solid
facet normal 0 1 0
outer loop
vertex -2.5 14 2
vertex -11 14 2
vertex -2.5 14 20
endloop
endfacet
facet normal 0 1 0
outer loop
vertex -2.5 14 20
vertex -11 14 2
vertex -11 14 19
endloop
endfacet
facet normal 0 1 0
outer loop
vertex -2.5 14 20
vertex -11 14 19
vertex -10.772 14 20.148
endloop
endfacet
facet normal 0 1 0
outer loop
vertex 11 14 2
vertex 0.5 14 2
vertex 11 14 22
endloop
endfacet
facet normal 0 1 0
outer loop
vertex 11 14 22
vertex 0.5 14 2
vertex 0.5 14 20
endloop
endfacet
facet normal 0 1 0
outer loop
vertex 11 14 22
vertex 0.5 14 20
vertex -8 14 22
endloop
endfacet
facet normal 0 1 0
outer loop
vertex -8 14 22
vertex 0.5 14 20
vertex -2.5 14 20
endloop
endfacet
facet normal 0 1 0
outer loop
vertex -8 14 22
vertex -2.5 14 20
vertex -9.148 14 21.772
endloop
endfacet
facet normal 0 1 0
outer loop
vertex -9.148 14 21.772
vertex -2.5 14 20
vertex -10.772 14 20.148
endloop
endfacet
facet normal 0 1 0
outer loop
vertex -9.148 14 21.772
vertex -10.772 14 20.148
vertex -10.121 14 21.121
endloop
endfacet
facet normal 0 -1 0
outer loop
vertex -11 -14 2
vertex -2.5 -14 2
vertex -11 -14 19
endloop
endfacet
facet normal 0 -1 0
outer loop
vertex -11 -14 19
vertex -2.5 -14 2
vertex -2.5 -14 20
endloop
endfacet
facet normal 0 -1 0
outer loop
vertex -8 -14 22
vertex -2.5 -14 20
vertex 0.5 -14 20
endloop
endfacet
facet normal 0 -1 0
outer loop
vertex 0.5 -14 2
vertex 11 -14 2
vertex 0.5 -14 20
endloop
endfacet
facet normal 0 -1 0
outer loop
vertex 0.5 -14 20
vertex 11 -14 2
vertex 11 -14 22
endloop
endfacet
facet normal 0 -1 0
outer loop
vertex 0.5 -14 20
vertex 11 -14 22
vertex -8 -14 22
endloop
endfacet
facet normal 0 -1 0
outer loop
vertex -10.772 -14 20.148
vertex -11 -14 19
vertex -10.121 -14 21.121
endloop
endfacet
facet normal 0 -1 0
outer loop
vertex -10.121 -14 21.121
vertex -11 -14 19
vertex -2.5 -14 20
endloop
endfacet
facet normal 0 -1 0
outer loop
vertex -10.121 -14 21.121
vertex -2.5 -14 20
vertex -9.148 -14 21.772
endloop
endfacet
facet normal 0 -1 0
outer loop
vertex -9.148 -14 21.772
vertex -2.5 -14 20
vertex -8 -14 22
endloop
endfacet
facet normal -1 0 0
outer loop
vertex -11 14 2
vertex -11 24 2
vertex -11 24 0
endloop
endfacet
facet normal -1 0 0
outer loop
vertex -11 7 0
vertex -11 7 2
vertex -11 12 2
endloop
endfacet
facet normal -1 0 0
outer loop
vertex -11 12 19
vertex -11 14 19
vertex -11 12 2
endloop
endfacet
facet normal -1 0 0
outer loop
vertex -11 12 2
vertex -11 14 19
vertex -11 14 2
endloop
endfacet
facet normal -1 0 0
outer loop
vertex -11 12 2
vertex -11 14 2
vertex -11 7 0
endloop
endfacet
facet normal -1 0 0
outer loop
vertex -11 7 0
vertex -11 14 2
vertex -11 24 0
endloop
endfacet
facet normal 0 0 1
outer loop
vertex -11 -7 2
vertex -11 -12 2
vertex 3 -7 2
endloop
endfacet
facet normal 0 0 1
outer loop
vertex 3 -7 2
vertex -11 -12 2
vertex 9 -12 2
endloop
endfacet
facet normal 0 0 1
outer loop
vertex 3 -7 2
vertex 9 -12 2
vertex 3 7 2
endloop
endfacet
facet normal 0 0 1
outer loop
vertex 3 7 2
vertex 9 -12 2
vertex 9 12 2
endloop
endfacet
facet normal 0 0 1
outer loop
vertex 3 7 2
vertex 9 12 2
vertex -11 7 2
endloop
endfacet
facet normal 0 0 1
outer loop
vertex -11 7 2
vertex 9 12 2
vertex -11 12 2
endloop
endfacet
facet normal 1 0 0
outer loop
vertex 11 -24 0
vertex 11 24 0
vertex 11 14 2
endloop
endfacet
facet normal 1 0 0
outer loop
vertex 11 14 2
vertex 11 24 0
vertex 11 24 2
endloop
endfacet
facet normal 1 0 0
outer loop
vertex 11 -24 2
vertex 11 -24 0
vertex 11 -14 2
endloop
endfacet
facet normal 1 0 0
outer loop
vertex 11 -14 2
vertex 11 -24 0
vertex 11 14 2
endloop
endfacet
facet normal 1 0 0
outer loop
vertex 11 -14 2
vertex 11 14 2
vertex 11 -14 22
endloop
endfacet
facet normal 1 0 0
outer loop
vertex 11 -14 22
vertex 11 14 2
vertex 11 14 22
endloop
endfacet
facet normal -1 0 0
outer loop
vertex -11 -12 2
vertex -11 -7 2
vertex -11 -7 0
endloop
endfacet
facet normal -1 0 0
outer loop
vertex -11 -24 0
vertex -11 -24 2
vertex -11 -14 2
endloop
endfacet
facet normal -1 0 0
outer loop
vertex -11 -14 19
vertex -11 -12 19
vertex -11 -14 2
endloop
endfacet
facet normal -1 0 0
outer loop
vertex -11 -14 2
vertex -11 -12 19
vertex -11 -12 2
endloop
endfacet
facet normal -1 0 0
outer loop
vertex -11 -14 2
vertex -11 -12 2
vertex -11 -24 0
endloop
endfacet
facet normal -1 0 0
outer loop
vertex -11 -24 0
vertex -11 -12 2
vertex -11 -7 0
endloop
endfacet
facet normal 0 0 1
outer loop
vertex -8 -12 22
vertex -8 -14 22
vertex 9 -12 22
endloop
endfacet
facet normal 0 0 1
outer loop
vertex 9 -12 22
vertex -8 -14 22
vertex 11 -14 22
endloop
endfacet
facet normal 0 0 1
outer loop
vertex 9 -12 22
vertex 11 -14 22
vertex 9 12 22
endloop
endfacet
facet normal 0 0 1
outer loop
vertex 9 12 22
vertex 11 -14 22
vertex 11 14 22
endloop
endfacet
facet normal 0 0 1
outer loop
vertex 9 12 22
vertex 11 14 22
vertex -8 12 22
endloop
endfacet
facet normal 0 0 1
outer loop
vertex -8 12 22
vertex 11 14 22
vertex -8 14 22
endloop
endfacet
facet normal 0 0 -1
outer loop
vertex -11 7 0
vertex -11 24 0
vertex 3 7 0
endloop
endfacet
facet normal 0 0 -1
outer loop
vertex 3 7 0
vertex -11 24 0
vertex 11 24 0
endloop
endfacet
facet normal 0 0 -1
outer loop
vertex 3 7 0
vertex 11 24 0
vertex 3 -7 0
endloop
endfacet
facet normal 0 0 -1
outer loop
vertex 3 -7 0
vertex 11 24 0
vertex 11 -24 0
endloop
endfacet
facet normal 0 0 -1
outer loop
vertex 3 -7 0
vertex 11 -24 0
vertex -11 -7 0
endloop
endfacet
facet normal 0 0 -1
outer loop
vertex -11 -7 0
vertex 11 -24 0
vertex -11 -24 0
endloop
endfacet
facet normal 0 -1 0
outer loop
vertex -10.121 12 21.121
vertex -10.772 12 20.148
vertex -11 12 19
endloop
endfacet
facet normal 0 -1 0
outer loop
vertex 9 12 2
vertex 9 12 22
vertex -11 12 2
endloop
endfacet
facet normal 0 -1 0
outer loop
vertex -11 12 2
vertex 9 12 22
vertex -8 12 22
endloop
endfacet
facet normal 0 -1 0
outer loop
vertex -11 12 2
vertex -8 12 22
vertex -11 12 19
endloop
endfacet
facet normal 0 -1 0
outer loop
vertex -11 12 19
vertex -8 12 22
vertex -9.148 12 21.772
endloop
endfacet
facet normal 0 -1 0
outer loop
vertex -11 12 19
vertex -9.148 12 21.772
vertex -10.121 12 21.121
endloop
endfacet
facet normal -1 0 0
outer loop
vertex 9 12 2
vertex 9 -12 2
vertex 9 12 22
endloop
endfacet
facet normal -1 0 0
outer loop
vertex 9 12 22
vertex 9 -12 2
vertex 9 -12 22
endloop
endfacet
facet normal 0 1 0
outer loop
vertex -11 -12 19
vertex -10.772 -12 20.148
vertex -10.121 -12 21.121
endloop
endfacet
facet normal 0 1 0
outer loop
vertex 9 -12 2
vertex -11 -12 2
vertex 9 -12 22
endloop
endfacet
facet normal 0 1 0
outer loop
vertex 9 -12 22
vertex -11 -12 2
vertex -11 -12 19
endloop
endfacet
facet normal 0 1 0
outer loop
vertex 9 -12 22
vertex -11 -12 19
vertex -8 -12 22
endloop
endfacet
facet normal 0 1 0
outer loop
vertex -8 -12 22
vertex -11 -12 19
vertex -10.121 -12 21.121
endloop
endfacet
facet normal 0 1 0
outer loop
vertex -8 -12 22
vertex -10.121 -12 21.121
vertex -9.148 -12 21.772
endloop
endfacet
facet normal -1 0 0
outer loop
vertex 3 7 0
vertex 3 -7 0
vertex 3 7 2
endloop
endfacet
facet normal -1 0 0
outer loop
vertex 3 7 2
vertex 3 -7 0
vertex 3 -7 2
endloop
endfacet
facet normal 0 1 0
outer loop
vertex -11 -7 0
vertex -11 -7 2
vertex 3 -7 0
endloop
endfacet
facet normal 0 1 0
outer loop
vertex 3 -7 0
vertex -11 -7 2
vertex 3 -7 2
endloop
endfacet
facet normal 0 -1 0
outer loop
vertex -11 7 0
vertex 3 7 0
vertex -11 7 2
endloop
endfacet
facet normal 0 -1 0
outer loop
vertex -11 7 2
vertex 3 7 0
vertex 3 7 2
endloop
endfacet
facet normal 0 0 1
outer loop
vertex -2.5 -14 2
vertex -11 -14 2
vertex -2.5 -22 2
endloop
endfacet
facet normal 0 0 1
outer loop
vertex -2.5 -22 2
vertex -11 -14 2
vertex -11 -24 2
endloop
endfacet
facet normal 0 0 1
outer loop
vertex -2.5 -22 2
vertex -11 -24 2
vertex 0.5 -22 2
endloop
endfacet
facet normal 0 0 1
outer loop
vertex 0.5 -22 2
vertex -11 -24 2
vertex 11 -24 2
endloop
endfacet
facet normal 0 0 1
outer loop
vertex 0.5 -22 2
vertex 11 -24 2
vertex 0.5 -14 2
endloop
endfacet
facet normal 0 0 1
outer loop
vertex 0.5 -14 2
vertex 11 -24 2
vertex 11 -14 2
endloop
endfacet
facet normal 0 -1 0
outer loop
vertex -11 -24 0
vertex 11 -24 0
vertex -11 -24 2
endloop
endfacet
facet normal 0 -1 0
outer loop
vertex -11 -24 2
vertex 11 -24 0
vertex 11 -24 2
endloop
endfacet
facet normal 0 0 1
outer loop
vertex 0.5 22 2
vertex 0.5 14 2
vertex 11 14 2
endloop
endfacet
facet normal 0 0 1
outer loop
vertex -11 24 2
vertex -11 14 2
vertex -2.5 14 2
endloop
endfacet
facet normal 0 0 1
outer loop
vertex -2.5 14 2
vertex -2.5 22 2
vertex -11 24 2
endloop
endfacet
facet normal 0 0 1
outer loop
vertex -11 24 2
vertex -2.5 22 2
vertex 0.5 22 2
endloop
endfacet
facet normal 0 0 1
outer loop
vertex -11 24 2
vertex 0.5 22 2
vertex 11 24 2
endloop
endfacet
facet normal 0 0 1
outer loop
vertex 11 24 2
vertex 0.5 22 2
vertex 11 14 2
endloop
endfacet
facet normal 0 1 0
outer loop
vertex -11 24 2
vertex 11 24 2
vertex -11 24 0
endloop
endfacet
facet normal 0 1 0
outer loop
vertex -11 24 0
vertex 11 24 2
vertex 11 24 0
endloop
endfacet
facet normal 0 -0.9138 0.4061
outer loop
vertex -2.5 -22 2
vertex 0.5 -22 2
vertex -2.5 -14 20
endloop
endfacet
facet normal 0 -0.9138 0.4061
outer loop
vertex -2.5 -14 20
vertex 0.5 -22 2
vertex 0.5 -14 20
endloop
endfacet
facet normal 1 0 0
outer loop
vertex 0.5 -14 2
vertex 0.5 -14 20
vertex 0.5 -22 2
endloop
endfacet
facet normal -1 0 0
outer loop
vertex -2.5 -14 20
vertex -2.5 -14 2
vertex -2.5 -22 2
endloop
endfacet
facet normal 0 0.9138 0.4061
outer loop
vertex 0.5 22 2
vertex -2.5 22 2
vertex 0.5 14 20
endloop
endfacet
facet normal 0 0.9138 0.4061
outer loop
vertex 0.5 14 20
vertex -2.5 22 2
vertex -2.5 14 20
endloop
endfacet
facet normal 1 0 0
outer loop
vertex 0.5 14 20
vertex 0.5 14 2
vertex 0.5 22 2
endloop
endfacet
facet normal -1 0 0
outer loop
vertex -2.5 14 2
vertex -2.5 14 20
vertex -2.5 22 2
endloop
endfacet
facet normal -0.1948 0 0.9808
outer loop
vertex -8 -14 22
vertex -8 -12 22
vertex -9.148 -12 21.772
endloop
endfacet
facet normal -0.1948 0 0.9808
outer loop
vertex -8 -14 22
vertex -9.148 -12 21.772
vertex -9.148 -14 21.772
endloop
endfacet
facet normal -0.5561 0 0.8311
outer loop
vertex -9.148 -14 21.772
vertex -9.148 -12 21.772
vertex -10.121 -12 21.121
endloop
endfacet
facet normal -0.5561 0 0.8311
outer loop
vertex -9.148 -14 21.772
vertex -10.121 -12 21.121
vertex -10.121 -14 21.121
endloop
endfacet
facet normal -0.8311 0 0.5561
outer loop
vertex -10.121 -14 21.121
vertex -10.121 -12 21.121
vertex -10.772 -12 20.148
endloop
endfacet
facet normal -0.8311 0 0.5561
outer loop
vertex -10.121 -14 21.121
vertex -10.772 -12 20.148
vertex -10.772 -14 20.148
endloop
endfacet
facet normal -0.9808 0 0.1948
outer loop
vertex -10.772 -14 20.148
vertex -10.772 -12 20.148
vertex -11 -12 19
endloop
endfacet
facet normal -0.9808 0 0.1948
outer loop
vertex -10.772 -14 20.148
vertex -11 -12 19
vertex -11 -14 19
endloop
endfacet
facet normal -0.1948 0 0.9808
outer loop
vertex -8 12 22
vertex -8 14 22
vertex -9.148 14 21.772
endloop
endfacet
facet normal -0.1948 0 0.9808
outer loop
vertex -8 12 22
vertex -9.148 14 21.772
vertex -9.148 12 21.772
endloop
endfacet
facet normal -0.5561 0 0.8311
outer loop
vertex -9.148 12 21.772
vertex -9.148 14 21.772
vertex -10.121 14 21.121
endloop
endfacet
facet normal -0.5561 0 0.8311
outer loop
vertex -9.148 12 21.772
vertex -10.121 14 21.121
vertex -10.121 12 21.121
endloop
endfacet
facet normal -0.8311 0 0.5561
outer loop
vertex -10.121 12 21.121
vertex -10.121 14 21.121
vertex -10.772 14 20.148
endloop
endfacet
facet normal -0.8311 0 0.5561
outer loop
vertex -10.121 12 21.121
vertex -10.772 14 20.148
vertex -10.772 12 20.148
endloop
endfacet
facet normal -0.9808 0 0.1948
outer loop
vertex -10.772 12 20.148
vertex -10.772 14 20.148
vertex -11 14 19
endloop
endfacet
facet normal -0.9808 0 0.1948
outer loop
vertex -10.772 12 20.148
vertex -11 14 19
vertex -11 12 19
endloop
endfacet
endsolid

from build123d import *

# Parameters (mm, degrees)
SKETCH_2_W          = 22
SKETCH_2_H          = 28
EXTRUDE_1_DEPTH     = 22
SKETCH_3_W          = 18
SKETCH_3_H          = 24
CUT_EXTRUDE_1_DEPTH = 20
SKETCH_4_W          = 14
SKETCH_4_H          = 14
CUT_EXTRUDE_3_DEPTH = 27.776855678
SKETCH_6_W          = 20
SKETCH_6_H          = 24
CUT_EXTRUDE_4_DEPTH = 5
SKETCH_7_W          = 22
SKETCH_7_H          = 2
EXTRUDE_3_DEPTH     = 10
SKETCH_8_W          = 22
SKETCH_8_H          = 2
EXTRUDE_4_DEPTH     = 10
RIB_3_REACH         = 36.699
SKETCH_10_WALL_W    = 91.095121896
SKETCH_10_WALL_H    = 3
RIB_4_REACH         = 36.699
SKETCH_11_WALL_W    = 91.095121896
SKETCH_11_WALL_H    = 3
FILLET_1_R          = 3


with BuildPart() as part:
    # ｽｹｯﾁ2 → ﾎﾞｽ - 押し出し1 (new body)
    with BuildSketch(Plane.XY):
        Rectangle(SKETCH_2_W, SKETCH_2_H)
    extrude(amount=EXTRUDE_1_DEPTH)

    # ｽｹｯﾁ3 → ｶｯﾄ - 押し出し1 (cut)
    with BuildSketch(Plane.XY.offset(22)):
        Rectangle(SKETCH_3_W, SKETCH_3_H)
    extrude(amount=-CUT_EXTRUDE_1_DEPTH, mode=Mode.SUBTRACT)

    # ｽｹｯﾁ4 → ｶｯﾄ - 押し出し3 (cut, through all)
    with BuildSketch(Plane.XY.offset(2)):
        with Locations((-4, 0)):
            Rectangle(SKETCH_4_W, SKETCH_4_H)
    extrude(amount=-CUT_EXTRUDE_3_DEPTH, mode=Mode.SUBTRACT)

    # ｽｹｯﾁ6 → ｶｯﾄ - 押し出し4 (cut)
    with BuildSketch(Plane.ZY.offset(11)):
        with Locations((12, 0)):
            Rectangle(SKETCH_6_W, SKETCH_6_H)
    extrude(amount=-CUT_EXTRUDE_4_DEPTH, mode=Mode.SUBTRACT)

    # ｽｹｯﾁ7 → ﾎﾞｽ - 押し出し3 (add)
    with BuildSketch(Plane.XZ.offset(14)):
        with Locations((0, 1)):
            Rectangle(SKETCH_7_W, SKETCH_7_H)
    extrude(amount=EXTRUDE_3_DEPTH)

    # ｽｹｯﾁ8 → ﾎﾞｽ - 押し出し4 (add)
    with BuildSketch(Plane(origin=(0, 14, 0), x_dir=(1, 0, 0), z_dir=(0, 1, 0))):
        with Locations((0, -1)):
            Rectangle(SKETCH_8_W, SKETCH_8_H)
    extrude(amount=EXTRUDE_4_DEPTH)

    # ｽｹｯﾁ10 wall → ﾘﾌﾞ3 (add, up to next)
    with BuildSketch(Plane(origin=(-1, -18, 11), x_dir=(0, -0.406138466053, -0.91381154862), z_dir=(0, 0.91381154862, -0.406138466053)), mode=Mode.PRIVATE) as rib_3_sk1:
        Rectangle(SKETCH_10_WALL_W, SKETCH_10_WALL_H)
    rib_3_tool1 = extrude(rib_3_sk1.sketch, amount=RIB_3_REACH, mode=Mode.PRIVATE) - part.part
    add(rib_3_tool1.solids().sort_by_distance((-1, -18, 11))[0])

    # ｽｹｯﾁ11 wall → ﾘﾌﾞ4 (add, up to next)
    with BuildSketch(Plane(origin=(-1, 18, 11), x_dir=(0, 0.406138466053, -0.91381154862), z_dir=(0, 0.91381154862, 0.406138466053)), mode=Mode.PRIVATE) as rib_4_sk1:
        Rectangle(SKETCH_11_WALL_W, SKETCH_11_WALL_H)
    rib_4_tool1 = extrude(rib_4_sk1.sketch, amount=-RIB_4_REACH, mode=Mode.PRIVATE) - part.part
    add(rib_4_tool1.solids().sort_by_distance((-1, 18, 11))[0])

    # ﾌｨﾚｯﾄ1
    fillet_1_edges = [part.edges().sort_by_distance(p)[0] for p in [
        (-11, 13, 22),
        (-11, -13, 22),
    ]]
    fillet(fillet_1_edges, radius=FILLET_1_R)


solid = part.part
